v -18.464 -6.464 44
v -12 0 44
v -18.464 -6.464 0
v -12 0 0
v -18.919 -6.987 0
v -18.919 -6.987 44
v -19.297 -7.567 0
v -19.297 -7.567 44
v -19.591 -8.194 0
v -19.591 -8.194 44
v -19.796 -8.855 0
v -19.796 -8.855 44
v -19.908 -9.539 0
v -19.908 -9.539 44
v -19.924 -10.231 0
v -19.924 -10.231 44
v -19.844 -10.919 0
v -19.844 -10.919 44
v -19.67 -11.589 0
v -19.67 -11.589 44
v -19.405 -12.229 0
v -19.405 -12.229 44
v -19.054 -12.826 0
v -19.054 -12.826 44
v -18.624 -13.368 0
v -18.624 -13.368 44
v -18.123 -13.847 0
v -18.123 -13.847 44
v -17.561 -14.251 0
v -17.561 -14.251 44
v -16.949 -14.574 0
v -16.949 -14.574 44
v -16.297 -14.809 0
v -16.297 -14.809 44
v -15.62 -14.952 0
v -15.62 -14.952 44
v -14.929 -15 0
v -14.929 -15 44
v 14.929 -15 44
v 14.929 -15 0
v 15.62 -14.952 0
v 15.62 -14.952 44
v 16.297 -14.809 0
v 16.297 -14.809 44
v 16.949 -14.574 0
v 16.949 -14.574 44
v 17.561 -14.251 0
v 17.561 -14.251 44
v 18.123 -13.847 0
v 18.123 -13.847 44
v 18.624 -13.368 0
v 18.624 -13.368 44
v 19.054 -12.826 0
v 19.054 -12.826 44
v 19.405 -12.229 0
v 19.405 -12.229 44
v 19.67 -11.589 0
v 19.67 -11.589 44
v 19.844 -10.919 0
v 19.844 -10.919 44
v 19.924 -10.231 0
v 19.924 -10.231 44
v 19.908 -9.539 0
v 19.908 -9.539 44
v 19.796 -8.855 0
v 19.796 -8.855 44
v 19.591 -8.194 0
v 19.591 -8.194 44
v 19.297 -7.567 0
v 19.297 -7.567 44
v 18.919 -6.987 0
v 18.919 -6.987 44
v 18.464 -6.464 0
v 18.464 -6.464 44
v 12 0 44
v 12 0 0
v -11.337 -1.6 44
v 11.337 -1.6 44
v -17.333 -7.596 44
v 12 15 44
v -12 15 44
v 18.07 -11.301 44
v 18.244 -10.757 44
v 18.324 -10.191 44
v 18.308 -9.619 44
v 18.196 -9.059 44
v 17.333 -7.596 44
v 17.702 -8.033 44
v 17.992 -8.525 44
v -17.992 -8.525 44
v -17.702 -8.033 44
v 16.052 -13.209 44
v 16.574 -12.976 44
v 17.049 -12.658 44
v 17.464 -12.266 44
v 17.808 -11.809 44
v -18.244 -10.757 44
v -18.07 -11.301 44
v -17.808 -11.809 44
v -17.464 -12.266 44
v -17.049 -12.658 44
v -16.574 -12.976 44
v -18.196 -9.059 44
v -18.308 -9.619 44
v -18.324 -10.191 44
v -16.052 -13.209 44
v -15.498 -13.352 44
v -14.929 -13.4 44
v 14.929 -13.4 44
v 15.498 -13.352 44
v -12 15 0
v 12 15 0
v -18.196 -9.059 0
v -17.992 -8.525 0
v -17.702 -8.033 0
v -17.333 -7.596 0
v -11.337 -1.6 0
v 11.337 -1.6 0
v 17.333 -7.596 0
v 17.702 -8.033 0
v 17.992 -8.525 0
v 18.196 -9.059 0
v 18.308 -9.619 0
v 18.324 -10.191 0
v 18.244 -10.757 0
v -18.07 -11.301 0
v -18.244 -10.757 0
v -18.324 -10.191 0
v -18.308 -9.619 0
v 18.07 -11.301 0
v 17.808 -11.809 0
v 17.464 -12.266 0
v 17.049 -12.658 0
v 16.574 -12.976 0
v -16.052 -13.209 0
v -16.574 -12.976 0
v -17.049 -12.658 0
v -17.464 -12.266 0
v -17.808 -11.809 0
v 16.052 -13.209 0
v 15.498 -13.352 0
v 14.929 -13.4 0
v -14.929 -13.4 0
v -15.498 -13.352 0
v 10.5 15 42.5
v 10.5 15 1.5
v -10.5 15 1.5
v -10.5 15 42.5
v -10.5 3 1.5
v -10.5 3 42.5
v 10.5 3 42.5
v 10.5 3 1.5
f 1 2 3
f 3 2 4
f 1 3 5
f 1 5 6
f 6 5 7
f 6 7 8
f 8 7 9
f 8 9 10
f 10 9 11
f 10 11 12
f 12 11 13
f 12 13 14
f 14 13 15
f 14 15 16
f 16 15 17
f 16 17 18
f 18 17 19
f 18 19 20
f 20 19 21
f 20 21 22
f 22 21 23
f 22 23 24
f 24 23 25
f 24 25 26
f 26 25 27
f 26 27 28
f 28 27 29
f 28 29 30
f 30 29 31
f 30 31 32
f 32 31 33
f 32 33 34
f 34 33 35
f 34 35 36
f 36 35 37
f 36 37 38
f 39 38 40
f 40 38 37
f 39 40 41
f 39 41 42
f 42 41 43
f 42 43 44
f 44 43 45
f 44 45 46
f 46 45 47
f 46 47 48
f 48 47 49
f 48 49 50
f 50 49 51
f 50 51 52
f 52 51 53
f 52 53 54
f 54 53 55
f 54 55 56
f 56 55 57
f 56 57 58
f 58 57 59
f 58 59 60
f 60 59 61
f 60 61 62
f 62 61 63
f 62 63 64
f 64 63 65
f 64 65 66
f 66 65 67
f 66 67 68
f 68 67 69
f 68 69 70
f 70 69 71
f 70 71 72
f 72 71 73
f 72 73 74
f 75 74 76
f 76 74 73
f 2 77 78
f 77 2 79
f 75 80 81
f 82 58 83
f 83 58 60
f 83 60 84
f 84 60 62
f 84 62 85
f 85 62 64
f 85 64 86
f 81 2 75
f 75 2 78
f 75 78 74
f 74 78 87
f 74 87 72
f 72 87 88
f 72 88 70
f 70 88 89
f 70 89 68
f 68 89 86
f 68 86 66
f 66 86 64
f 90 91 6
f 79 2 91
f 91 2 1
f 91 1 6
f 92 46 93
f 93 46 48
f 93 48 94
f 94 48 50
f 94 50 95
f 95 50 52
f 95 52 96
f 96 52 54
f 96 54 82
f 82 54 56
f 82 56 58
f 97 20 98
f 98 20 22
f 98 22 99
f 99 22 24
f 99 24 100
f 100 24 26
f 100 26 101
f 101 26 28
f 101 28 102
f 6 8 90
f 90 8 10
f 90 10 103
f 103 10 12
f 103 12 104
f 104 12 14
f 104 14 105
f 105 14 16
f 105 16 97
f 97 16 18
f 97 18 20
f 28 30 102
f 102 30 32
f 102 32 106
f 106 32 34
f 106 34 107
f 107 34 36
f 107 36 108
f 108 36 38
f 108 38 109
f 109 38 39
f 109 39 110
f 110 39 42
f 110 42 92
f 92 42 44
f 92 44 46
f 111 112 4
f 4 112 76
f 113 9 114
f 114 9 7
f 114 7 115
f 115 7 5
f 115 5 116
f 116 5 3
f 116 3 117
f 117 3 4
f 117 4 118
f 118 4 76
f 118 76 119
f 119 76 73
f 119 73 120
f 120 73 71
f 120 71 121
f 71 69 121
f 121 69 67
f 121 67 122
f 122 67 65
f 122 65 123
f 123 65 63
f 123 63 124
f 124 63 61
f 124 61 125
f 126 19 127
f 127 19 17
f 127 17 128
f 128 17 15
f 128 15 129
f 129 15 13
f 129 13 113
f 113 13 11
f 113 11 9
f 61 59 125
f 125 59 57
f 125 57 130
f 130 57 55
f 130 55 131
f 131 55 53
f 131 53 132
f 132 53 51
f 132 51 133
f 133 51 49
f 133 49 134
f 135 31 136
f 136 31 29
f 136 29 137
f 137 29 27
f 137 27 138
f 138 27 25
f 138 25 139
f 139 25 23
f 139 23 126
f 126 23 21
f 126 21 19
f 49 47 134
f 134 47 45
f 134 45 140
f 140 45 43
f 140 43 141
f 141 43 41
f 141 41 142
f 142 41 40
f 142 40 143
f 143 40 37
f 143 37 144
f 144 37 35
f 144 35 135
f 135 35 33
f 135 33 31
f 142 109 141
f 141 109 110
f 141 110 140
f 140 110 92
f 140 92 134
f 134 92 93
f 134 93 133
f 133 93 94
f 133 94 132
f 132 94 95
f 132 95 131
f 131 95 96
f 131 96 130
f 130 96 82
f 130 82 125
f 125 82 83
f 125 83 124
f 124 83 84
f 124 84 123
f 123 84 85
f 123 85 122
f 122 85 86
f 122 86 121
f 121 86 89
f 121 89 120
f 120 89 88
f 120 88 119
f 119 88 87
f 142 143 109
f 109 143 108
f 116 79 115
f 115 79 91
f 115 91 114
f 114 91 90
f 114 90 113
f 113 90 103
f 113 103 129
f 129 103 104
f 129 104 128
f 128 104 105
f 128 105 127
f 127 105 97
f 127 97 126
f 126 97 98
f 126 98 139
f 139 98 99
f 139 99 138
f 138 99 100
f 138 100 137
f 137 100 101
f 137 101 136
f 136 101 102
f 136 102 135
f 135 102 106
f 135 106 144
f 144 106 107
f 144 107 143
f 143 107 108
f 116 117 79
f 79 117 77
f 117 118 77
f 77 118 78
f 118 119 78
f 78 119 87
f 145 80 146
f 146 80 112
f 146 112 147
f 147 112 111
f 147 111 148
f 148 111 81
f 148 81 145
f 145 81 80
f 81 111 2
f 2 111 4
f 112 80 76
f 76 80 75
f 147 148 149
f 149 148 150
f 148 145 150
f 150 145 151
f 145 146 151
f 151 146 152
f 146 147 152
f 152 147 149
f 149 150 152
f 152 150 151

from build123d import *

# Parameters (mm, degrees)
BOSS_EXTRUDE1_DEPTH = 44
CUT_EXTRUDE1_DEPTH  = 45
SKETCH2_W           = 24
SKETCH2_H           = 44
SKETCH2_W_2         = 21
SKETCH2_H_2         = 41
BOSS_EXTRUDE2_DEPTH = 15
SKETCH2_2_W         = 21
SKETCH2_2_H         = 41
BOSS_EXTRUDE3_DEPTH = 3


with BuildPart() as part:
    # Sketch1 → Boss-Extrude1 (new body)
    with BuildSketch(Plane.XY):
        with BuildLine():
            Line((-12, 0), (12, 0))
            Line((12, 0), (18.464466094, -6.464466094))
            ThreePointArc((18.464466094, -6.464466094), (19.548329851, -11.913417162), (14.928932188, -15))
            Line((14.928932188, -15), (-14.928932188, -15))
            ThreePointArc((-14.928932188, -15), (-19.548329851, -11.913417162), (-18.464466094, -6.464466094))
            Line((-18.464466094, -6.464466094), (-12, 0))
        make_face()
    extrude(amount=BOSS_EXTRUDE1_DEPTH)

    # Sketch3 → Cut-Extrude1 (cut, through all)
    with BuildSketch(Plane.XY.offset(44)):
        with BuildLine():
            Line((-14.928932188, -13.4), (14.928932188, -13.4))
            ThreePointArc((14.928932188, -13.4), (18.070122599, -11.30112367), (17.333095244, -7.595836944))
            Line((17.333095244, -7.595836944), (11.3372583, -1.6))
            Line((11.3372583, -1.6), (-11.3372583, -1.6))
            Line((-11.3372583, -1.6), (-17.333095244, -7.595836944))
            ThreePointArc((-17.333095244, -7.595836944), (-18.070122599, -11.30112367), (-14.928932188, -13.4))
        make_face()
    extrude(amount=-CUT_EXTRUDE1_DEPTH, mode=Mode.SUBTRACT)

    # Sketch2 → Boss-Extrude2 (add)
    with BuildSketch(Plane(origin=(0, 0, 0), x_dir=(1, 0, 0), z_dir=(0, 1, 0))):
        with Locations((0, -22)):
            Rectangle(SKETCH2_W, SKETCH2_H)
        with Locations((0, -22)):
            Rectangle(SKETCH2_W_2, SKETCH2_H_2, mode=Mode.SUBTRACT)
    extrude(amount=BOSS_EXTRUDE2_DEPTH)

    # Sketch2<2> → Boss-Extrude3 (add)
    with BuildSketch(Plane(origin=(0, 0, 0), x_dir=(1, 0, 0), z_dir=(0, 1, 0))):
        with Locations((0, -22)):
            Rectangle(SKETCH2_2_W, SKETCH2_2_H)
    extrude(amount=BOSS_EXTRUDE3_DEPTH)


solid = part.part
